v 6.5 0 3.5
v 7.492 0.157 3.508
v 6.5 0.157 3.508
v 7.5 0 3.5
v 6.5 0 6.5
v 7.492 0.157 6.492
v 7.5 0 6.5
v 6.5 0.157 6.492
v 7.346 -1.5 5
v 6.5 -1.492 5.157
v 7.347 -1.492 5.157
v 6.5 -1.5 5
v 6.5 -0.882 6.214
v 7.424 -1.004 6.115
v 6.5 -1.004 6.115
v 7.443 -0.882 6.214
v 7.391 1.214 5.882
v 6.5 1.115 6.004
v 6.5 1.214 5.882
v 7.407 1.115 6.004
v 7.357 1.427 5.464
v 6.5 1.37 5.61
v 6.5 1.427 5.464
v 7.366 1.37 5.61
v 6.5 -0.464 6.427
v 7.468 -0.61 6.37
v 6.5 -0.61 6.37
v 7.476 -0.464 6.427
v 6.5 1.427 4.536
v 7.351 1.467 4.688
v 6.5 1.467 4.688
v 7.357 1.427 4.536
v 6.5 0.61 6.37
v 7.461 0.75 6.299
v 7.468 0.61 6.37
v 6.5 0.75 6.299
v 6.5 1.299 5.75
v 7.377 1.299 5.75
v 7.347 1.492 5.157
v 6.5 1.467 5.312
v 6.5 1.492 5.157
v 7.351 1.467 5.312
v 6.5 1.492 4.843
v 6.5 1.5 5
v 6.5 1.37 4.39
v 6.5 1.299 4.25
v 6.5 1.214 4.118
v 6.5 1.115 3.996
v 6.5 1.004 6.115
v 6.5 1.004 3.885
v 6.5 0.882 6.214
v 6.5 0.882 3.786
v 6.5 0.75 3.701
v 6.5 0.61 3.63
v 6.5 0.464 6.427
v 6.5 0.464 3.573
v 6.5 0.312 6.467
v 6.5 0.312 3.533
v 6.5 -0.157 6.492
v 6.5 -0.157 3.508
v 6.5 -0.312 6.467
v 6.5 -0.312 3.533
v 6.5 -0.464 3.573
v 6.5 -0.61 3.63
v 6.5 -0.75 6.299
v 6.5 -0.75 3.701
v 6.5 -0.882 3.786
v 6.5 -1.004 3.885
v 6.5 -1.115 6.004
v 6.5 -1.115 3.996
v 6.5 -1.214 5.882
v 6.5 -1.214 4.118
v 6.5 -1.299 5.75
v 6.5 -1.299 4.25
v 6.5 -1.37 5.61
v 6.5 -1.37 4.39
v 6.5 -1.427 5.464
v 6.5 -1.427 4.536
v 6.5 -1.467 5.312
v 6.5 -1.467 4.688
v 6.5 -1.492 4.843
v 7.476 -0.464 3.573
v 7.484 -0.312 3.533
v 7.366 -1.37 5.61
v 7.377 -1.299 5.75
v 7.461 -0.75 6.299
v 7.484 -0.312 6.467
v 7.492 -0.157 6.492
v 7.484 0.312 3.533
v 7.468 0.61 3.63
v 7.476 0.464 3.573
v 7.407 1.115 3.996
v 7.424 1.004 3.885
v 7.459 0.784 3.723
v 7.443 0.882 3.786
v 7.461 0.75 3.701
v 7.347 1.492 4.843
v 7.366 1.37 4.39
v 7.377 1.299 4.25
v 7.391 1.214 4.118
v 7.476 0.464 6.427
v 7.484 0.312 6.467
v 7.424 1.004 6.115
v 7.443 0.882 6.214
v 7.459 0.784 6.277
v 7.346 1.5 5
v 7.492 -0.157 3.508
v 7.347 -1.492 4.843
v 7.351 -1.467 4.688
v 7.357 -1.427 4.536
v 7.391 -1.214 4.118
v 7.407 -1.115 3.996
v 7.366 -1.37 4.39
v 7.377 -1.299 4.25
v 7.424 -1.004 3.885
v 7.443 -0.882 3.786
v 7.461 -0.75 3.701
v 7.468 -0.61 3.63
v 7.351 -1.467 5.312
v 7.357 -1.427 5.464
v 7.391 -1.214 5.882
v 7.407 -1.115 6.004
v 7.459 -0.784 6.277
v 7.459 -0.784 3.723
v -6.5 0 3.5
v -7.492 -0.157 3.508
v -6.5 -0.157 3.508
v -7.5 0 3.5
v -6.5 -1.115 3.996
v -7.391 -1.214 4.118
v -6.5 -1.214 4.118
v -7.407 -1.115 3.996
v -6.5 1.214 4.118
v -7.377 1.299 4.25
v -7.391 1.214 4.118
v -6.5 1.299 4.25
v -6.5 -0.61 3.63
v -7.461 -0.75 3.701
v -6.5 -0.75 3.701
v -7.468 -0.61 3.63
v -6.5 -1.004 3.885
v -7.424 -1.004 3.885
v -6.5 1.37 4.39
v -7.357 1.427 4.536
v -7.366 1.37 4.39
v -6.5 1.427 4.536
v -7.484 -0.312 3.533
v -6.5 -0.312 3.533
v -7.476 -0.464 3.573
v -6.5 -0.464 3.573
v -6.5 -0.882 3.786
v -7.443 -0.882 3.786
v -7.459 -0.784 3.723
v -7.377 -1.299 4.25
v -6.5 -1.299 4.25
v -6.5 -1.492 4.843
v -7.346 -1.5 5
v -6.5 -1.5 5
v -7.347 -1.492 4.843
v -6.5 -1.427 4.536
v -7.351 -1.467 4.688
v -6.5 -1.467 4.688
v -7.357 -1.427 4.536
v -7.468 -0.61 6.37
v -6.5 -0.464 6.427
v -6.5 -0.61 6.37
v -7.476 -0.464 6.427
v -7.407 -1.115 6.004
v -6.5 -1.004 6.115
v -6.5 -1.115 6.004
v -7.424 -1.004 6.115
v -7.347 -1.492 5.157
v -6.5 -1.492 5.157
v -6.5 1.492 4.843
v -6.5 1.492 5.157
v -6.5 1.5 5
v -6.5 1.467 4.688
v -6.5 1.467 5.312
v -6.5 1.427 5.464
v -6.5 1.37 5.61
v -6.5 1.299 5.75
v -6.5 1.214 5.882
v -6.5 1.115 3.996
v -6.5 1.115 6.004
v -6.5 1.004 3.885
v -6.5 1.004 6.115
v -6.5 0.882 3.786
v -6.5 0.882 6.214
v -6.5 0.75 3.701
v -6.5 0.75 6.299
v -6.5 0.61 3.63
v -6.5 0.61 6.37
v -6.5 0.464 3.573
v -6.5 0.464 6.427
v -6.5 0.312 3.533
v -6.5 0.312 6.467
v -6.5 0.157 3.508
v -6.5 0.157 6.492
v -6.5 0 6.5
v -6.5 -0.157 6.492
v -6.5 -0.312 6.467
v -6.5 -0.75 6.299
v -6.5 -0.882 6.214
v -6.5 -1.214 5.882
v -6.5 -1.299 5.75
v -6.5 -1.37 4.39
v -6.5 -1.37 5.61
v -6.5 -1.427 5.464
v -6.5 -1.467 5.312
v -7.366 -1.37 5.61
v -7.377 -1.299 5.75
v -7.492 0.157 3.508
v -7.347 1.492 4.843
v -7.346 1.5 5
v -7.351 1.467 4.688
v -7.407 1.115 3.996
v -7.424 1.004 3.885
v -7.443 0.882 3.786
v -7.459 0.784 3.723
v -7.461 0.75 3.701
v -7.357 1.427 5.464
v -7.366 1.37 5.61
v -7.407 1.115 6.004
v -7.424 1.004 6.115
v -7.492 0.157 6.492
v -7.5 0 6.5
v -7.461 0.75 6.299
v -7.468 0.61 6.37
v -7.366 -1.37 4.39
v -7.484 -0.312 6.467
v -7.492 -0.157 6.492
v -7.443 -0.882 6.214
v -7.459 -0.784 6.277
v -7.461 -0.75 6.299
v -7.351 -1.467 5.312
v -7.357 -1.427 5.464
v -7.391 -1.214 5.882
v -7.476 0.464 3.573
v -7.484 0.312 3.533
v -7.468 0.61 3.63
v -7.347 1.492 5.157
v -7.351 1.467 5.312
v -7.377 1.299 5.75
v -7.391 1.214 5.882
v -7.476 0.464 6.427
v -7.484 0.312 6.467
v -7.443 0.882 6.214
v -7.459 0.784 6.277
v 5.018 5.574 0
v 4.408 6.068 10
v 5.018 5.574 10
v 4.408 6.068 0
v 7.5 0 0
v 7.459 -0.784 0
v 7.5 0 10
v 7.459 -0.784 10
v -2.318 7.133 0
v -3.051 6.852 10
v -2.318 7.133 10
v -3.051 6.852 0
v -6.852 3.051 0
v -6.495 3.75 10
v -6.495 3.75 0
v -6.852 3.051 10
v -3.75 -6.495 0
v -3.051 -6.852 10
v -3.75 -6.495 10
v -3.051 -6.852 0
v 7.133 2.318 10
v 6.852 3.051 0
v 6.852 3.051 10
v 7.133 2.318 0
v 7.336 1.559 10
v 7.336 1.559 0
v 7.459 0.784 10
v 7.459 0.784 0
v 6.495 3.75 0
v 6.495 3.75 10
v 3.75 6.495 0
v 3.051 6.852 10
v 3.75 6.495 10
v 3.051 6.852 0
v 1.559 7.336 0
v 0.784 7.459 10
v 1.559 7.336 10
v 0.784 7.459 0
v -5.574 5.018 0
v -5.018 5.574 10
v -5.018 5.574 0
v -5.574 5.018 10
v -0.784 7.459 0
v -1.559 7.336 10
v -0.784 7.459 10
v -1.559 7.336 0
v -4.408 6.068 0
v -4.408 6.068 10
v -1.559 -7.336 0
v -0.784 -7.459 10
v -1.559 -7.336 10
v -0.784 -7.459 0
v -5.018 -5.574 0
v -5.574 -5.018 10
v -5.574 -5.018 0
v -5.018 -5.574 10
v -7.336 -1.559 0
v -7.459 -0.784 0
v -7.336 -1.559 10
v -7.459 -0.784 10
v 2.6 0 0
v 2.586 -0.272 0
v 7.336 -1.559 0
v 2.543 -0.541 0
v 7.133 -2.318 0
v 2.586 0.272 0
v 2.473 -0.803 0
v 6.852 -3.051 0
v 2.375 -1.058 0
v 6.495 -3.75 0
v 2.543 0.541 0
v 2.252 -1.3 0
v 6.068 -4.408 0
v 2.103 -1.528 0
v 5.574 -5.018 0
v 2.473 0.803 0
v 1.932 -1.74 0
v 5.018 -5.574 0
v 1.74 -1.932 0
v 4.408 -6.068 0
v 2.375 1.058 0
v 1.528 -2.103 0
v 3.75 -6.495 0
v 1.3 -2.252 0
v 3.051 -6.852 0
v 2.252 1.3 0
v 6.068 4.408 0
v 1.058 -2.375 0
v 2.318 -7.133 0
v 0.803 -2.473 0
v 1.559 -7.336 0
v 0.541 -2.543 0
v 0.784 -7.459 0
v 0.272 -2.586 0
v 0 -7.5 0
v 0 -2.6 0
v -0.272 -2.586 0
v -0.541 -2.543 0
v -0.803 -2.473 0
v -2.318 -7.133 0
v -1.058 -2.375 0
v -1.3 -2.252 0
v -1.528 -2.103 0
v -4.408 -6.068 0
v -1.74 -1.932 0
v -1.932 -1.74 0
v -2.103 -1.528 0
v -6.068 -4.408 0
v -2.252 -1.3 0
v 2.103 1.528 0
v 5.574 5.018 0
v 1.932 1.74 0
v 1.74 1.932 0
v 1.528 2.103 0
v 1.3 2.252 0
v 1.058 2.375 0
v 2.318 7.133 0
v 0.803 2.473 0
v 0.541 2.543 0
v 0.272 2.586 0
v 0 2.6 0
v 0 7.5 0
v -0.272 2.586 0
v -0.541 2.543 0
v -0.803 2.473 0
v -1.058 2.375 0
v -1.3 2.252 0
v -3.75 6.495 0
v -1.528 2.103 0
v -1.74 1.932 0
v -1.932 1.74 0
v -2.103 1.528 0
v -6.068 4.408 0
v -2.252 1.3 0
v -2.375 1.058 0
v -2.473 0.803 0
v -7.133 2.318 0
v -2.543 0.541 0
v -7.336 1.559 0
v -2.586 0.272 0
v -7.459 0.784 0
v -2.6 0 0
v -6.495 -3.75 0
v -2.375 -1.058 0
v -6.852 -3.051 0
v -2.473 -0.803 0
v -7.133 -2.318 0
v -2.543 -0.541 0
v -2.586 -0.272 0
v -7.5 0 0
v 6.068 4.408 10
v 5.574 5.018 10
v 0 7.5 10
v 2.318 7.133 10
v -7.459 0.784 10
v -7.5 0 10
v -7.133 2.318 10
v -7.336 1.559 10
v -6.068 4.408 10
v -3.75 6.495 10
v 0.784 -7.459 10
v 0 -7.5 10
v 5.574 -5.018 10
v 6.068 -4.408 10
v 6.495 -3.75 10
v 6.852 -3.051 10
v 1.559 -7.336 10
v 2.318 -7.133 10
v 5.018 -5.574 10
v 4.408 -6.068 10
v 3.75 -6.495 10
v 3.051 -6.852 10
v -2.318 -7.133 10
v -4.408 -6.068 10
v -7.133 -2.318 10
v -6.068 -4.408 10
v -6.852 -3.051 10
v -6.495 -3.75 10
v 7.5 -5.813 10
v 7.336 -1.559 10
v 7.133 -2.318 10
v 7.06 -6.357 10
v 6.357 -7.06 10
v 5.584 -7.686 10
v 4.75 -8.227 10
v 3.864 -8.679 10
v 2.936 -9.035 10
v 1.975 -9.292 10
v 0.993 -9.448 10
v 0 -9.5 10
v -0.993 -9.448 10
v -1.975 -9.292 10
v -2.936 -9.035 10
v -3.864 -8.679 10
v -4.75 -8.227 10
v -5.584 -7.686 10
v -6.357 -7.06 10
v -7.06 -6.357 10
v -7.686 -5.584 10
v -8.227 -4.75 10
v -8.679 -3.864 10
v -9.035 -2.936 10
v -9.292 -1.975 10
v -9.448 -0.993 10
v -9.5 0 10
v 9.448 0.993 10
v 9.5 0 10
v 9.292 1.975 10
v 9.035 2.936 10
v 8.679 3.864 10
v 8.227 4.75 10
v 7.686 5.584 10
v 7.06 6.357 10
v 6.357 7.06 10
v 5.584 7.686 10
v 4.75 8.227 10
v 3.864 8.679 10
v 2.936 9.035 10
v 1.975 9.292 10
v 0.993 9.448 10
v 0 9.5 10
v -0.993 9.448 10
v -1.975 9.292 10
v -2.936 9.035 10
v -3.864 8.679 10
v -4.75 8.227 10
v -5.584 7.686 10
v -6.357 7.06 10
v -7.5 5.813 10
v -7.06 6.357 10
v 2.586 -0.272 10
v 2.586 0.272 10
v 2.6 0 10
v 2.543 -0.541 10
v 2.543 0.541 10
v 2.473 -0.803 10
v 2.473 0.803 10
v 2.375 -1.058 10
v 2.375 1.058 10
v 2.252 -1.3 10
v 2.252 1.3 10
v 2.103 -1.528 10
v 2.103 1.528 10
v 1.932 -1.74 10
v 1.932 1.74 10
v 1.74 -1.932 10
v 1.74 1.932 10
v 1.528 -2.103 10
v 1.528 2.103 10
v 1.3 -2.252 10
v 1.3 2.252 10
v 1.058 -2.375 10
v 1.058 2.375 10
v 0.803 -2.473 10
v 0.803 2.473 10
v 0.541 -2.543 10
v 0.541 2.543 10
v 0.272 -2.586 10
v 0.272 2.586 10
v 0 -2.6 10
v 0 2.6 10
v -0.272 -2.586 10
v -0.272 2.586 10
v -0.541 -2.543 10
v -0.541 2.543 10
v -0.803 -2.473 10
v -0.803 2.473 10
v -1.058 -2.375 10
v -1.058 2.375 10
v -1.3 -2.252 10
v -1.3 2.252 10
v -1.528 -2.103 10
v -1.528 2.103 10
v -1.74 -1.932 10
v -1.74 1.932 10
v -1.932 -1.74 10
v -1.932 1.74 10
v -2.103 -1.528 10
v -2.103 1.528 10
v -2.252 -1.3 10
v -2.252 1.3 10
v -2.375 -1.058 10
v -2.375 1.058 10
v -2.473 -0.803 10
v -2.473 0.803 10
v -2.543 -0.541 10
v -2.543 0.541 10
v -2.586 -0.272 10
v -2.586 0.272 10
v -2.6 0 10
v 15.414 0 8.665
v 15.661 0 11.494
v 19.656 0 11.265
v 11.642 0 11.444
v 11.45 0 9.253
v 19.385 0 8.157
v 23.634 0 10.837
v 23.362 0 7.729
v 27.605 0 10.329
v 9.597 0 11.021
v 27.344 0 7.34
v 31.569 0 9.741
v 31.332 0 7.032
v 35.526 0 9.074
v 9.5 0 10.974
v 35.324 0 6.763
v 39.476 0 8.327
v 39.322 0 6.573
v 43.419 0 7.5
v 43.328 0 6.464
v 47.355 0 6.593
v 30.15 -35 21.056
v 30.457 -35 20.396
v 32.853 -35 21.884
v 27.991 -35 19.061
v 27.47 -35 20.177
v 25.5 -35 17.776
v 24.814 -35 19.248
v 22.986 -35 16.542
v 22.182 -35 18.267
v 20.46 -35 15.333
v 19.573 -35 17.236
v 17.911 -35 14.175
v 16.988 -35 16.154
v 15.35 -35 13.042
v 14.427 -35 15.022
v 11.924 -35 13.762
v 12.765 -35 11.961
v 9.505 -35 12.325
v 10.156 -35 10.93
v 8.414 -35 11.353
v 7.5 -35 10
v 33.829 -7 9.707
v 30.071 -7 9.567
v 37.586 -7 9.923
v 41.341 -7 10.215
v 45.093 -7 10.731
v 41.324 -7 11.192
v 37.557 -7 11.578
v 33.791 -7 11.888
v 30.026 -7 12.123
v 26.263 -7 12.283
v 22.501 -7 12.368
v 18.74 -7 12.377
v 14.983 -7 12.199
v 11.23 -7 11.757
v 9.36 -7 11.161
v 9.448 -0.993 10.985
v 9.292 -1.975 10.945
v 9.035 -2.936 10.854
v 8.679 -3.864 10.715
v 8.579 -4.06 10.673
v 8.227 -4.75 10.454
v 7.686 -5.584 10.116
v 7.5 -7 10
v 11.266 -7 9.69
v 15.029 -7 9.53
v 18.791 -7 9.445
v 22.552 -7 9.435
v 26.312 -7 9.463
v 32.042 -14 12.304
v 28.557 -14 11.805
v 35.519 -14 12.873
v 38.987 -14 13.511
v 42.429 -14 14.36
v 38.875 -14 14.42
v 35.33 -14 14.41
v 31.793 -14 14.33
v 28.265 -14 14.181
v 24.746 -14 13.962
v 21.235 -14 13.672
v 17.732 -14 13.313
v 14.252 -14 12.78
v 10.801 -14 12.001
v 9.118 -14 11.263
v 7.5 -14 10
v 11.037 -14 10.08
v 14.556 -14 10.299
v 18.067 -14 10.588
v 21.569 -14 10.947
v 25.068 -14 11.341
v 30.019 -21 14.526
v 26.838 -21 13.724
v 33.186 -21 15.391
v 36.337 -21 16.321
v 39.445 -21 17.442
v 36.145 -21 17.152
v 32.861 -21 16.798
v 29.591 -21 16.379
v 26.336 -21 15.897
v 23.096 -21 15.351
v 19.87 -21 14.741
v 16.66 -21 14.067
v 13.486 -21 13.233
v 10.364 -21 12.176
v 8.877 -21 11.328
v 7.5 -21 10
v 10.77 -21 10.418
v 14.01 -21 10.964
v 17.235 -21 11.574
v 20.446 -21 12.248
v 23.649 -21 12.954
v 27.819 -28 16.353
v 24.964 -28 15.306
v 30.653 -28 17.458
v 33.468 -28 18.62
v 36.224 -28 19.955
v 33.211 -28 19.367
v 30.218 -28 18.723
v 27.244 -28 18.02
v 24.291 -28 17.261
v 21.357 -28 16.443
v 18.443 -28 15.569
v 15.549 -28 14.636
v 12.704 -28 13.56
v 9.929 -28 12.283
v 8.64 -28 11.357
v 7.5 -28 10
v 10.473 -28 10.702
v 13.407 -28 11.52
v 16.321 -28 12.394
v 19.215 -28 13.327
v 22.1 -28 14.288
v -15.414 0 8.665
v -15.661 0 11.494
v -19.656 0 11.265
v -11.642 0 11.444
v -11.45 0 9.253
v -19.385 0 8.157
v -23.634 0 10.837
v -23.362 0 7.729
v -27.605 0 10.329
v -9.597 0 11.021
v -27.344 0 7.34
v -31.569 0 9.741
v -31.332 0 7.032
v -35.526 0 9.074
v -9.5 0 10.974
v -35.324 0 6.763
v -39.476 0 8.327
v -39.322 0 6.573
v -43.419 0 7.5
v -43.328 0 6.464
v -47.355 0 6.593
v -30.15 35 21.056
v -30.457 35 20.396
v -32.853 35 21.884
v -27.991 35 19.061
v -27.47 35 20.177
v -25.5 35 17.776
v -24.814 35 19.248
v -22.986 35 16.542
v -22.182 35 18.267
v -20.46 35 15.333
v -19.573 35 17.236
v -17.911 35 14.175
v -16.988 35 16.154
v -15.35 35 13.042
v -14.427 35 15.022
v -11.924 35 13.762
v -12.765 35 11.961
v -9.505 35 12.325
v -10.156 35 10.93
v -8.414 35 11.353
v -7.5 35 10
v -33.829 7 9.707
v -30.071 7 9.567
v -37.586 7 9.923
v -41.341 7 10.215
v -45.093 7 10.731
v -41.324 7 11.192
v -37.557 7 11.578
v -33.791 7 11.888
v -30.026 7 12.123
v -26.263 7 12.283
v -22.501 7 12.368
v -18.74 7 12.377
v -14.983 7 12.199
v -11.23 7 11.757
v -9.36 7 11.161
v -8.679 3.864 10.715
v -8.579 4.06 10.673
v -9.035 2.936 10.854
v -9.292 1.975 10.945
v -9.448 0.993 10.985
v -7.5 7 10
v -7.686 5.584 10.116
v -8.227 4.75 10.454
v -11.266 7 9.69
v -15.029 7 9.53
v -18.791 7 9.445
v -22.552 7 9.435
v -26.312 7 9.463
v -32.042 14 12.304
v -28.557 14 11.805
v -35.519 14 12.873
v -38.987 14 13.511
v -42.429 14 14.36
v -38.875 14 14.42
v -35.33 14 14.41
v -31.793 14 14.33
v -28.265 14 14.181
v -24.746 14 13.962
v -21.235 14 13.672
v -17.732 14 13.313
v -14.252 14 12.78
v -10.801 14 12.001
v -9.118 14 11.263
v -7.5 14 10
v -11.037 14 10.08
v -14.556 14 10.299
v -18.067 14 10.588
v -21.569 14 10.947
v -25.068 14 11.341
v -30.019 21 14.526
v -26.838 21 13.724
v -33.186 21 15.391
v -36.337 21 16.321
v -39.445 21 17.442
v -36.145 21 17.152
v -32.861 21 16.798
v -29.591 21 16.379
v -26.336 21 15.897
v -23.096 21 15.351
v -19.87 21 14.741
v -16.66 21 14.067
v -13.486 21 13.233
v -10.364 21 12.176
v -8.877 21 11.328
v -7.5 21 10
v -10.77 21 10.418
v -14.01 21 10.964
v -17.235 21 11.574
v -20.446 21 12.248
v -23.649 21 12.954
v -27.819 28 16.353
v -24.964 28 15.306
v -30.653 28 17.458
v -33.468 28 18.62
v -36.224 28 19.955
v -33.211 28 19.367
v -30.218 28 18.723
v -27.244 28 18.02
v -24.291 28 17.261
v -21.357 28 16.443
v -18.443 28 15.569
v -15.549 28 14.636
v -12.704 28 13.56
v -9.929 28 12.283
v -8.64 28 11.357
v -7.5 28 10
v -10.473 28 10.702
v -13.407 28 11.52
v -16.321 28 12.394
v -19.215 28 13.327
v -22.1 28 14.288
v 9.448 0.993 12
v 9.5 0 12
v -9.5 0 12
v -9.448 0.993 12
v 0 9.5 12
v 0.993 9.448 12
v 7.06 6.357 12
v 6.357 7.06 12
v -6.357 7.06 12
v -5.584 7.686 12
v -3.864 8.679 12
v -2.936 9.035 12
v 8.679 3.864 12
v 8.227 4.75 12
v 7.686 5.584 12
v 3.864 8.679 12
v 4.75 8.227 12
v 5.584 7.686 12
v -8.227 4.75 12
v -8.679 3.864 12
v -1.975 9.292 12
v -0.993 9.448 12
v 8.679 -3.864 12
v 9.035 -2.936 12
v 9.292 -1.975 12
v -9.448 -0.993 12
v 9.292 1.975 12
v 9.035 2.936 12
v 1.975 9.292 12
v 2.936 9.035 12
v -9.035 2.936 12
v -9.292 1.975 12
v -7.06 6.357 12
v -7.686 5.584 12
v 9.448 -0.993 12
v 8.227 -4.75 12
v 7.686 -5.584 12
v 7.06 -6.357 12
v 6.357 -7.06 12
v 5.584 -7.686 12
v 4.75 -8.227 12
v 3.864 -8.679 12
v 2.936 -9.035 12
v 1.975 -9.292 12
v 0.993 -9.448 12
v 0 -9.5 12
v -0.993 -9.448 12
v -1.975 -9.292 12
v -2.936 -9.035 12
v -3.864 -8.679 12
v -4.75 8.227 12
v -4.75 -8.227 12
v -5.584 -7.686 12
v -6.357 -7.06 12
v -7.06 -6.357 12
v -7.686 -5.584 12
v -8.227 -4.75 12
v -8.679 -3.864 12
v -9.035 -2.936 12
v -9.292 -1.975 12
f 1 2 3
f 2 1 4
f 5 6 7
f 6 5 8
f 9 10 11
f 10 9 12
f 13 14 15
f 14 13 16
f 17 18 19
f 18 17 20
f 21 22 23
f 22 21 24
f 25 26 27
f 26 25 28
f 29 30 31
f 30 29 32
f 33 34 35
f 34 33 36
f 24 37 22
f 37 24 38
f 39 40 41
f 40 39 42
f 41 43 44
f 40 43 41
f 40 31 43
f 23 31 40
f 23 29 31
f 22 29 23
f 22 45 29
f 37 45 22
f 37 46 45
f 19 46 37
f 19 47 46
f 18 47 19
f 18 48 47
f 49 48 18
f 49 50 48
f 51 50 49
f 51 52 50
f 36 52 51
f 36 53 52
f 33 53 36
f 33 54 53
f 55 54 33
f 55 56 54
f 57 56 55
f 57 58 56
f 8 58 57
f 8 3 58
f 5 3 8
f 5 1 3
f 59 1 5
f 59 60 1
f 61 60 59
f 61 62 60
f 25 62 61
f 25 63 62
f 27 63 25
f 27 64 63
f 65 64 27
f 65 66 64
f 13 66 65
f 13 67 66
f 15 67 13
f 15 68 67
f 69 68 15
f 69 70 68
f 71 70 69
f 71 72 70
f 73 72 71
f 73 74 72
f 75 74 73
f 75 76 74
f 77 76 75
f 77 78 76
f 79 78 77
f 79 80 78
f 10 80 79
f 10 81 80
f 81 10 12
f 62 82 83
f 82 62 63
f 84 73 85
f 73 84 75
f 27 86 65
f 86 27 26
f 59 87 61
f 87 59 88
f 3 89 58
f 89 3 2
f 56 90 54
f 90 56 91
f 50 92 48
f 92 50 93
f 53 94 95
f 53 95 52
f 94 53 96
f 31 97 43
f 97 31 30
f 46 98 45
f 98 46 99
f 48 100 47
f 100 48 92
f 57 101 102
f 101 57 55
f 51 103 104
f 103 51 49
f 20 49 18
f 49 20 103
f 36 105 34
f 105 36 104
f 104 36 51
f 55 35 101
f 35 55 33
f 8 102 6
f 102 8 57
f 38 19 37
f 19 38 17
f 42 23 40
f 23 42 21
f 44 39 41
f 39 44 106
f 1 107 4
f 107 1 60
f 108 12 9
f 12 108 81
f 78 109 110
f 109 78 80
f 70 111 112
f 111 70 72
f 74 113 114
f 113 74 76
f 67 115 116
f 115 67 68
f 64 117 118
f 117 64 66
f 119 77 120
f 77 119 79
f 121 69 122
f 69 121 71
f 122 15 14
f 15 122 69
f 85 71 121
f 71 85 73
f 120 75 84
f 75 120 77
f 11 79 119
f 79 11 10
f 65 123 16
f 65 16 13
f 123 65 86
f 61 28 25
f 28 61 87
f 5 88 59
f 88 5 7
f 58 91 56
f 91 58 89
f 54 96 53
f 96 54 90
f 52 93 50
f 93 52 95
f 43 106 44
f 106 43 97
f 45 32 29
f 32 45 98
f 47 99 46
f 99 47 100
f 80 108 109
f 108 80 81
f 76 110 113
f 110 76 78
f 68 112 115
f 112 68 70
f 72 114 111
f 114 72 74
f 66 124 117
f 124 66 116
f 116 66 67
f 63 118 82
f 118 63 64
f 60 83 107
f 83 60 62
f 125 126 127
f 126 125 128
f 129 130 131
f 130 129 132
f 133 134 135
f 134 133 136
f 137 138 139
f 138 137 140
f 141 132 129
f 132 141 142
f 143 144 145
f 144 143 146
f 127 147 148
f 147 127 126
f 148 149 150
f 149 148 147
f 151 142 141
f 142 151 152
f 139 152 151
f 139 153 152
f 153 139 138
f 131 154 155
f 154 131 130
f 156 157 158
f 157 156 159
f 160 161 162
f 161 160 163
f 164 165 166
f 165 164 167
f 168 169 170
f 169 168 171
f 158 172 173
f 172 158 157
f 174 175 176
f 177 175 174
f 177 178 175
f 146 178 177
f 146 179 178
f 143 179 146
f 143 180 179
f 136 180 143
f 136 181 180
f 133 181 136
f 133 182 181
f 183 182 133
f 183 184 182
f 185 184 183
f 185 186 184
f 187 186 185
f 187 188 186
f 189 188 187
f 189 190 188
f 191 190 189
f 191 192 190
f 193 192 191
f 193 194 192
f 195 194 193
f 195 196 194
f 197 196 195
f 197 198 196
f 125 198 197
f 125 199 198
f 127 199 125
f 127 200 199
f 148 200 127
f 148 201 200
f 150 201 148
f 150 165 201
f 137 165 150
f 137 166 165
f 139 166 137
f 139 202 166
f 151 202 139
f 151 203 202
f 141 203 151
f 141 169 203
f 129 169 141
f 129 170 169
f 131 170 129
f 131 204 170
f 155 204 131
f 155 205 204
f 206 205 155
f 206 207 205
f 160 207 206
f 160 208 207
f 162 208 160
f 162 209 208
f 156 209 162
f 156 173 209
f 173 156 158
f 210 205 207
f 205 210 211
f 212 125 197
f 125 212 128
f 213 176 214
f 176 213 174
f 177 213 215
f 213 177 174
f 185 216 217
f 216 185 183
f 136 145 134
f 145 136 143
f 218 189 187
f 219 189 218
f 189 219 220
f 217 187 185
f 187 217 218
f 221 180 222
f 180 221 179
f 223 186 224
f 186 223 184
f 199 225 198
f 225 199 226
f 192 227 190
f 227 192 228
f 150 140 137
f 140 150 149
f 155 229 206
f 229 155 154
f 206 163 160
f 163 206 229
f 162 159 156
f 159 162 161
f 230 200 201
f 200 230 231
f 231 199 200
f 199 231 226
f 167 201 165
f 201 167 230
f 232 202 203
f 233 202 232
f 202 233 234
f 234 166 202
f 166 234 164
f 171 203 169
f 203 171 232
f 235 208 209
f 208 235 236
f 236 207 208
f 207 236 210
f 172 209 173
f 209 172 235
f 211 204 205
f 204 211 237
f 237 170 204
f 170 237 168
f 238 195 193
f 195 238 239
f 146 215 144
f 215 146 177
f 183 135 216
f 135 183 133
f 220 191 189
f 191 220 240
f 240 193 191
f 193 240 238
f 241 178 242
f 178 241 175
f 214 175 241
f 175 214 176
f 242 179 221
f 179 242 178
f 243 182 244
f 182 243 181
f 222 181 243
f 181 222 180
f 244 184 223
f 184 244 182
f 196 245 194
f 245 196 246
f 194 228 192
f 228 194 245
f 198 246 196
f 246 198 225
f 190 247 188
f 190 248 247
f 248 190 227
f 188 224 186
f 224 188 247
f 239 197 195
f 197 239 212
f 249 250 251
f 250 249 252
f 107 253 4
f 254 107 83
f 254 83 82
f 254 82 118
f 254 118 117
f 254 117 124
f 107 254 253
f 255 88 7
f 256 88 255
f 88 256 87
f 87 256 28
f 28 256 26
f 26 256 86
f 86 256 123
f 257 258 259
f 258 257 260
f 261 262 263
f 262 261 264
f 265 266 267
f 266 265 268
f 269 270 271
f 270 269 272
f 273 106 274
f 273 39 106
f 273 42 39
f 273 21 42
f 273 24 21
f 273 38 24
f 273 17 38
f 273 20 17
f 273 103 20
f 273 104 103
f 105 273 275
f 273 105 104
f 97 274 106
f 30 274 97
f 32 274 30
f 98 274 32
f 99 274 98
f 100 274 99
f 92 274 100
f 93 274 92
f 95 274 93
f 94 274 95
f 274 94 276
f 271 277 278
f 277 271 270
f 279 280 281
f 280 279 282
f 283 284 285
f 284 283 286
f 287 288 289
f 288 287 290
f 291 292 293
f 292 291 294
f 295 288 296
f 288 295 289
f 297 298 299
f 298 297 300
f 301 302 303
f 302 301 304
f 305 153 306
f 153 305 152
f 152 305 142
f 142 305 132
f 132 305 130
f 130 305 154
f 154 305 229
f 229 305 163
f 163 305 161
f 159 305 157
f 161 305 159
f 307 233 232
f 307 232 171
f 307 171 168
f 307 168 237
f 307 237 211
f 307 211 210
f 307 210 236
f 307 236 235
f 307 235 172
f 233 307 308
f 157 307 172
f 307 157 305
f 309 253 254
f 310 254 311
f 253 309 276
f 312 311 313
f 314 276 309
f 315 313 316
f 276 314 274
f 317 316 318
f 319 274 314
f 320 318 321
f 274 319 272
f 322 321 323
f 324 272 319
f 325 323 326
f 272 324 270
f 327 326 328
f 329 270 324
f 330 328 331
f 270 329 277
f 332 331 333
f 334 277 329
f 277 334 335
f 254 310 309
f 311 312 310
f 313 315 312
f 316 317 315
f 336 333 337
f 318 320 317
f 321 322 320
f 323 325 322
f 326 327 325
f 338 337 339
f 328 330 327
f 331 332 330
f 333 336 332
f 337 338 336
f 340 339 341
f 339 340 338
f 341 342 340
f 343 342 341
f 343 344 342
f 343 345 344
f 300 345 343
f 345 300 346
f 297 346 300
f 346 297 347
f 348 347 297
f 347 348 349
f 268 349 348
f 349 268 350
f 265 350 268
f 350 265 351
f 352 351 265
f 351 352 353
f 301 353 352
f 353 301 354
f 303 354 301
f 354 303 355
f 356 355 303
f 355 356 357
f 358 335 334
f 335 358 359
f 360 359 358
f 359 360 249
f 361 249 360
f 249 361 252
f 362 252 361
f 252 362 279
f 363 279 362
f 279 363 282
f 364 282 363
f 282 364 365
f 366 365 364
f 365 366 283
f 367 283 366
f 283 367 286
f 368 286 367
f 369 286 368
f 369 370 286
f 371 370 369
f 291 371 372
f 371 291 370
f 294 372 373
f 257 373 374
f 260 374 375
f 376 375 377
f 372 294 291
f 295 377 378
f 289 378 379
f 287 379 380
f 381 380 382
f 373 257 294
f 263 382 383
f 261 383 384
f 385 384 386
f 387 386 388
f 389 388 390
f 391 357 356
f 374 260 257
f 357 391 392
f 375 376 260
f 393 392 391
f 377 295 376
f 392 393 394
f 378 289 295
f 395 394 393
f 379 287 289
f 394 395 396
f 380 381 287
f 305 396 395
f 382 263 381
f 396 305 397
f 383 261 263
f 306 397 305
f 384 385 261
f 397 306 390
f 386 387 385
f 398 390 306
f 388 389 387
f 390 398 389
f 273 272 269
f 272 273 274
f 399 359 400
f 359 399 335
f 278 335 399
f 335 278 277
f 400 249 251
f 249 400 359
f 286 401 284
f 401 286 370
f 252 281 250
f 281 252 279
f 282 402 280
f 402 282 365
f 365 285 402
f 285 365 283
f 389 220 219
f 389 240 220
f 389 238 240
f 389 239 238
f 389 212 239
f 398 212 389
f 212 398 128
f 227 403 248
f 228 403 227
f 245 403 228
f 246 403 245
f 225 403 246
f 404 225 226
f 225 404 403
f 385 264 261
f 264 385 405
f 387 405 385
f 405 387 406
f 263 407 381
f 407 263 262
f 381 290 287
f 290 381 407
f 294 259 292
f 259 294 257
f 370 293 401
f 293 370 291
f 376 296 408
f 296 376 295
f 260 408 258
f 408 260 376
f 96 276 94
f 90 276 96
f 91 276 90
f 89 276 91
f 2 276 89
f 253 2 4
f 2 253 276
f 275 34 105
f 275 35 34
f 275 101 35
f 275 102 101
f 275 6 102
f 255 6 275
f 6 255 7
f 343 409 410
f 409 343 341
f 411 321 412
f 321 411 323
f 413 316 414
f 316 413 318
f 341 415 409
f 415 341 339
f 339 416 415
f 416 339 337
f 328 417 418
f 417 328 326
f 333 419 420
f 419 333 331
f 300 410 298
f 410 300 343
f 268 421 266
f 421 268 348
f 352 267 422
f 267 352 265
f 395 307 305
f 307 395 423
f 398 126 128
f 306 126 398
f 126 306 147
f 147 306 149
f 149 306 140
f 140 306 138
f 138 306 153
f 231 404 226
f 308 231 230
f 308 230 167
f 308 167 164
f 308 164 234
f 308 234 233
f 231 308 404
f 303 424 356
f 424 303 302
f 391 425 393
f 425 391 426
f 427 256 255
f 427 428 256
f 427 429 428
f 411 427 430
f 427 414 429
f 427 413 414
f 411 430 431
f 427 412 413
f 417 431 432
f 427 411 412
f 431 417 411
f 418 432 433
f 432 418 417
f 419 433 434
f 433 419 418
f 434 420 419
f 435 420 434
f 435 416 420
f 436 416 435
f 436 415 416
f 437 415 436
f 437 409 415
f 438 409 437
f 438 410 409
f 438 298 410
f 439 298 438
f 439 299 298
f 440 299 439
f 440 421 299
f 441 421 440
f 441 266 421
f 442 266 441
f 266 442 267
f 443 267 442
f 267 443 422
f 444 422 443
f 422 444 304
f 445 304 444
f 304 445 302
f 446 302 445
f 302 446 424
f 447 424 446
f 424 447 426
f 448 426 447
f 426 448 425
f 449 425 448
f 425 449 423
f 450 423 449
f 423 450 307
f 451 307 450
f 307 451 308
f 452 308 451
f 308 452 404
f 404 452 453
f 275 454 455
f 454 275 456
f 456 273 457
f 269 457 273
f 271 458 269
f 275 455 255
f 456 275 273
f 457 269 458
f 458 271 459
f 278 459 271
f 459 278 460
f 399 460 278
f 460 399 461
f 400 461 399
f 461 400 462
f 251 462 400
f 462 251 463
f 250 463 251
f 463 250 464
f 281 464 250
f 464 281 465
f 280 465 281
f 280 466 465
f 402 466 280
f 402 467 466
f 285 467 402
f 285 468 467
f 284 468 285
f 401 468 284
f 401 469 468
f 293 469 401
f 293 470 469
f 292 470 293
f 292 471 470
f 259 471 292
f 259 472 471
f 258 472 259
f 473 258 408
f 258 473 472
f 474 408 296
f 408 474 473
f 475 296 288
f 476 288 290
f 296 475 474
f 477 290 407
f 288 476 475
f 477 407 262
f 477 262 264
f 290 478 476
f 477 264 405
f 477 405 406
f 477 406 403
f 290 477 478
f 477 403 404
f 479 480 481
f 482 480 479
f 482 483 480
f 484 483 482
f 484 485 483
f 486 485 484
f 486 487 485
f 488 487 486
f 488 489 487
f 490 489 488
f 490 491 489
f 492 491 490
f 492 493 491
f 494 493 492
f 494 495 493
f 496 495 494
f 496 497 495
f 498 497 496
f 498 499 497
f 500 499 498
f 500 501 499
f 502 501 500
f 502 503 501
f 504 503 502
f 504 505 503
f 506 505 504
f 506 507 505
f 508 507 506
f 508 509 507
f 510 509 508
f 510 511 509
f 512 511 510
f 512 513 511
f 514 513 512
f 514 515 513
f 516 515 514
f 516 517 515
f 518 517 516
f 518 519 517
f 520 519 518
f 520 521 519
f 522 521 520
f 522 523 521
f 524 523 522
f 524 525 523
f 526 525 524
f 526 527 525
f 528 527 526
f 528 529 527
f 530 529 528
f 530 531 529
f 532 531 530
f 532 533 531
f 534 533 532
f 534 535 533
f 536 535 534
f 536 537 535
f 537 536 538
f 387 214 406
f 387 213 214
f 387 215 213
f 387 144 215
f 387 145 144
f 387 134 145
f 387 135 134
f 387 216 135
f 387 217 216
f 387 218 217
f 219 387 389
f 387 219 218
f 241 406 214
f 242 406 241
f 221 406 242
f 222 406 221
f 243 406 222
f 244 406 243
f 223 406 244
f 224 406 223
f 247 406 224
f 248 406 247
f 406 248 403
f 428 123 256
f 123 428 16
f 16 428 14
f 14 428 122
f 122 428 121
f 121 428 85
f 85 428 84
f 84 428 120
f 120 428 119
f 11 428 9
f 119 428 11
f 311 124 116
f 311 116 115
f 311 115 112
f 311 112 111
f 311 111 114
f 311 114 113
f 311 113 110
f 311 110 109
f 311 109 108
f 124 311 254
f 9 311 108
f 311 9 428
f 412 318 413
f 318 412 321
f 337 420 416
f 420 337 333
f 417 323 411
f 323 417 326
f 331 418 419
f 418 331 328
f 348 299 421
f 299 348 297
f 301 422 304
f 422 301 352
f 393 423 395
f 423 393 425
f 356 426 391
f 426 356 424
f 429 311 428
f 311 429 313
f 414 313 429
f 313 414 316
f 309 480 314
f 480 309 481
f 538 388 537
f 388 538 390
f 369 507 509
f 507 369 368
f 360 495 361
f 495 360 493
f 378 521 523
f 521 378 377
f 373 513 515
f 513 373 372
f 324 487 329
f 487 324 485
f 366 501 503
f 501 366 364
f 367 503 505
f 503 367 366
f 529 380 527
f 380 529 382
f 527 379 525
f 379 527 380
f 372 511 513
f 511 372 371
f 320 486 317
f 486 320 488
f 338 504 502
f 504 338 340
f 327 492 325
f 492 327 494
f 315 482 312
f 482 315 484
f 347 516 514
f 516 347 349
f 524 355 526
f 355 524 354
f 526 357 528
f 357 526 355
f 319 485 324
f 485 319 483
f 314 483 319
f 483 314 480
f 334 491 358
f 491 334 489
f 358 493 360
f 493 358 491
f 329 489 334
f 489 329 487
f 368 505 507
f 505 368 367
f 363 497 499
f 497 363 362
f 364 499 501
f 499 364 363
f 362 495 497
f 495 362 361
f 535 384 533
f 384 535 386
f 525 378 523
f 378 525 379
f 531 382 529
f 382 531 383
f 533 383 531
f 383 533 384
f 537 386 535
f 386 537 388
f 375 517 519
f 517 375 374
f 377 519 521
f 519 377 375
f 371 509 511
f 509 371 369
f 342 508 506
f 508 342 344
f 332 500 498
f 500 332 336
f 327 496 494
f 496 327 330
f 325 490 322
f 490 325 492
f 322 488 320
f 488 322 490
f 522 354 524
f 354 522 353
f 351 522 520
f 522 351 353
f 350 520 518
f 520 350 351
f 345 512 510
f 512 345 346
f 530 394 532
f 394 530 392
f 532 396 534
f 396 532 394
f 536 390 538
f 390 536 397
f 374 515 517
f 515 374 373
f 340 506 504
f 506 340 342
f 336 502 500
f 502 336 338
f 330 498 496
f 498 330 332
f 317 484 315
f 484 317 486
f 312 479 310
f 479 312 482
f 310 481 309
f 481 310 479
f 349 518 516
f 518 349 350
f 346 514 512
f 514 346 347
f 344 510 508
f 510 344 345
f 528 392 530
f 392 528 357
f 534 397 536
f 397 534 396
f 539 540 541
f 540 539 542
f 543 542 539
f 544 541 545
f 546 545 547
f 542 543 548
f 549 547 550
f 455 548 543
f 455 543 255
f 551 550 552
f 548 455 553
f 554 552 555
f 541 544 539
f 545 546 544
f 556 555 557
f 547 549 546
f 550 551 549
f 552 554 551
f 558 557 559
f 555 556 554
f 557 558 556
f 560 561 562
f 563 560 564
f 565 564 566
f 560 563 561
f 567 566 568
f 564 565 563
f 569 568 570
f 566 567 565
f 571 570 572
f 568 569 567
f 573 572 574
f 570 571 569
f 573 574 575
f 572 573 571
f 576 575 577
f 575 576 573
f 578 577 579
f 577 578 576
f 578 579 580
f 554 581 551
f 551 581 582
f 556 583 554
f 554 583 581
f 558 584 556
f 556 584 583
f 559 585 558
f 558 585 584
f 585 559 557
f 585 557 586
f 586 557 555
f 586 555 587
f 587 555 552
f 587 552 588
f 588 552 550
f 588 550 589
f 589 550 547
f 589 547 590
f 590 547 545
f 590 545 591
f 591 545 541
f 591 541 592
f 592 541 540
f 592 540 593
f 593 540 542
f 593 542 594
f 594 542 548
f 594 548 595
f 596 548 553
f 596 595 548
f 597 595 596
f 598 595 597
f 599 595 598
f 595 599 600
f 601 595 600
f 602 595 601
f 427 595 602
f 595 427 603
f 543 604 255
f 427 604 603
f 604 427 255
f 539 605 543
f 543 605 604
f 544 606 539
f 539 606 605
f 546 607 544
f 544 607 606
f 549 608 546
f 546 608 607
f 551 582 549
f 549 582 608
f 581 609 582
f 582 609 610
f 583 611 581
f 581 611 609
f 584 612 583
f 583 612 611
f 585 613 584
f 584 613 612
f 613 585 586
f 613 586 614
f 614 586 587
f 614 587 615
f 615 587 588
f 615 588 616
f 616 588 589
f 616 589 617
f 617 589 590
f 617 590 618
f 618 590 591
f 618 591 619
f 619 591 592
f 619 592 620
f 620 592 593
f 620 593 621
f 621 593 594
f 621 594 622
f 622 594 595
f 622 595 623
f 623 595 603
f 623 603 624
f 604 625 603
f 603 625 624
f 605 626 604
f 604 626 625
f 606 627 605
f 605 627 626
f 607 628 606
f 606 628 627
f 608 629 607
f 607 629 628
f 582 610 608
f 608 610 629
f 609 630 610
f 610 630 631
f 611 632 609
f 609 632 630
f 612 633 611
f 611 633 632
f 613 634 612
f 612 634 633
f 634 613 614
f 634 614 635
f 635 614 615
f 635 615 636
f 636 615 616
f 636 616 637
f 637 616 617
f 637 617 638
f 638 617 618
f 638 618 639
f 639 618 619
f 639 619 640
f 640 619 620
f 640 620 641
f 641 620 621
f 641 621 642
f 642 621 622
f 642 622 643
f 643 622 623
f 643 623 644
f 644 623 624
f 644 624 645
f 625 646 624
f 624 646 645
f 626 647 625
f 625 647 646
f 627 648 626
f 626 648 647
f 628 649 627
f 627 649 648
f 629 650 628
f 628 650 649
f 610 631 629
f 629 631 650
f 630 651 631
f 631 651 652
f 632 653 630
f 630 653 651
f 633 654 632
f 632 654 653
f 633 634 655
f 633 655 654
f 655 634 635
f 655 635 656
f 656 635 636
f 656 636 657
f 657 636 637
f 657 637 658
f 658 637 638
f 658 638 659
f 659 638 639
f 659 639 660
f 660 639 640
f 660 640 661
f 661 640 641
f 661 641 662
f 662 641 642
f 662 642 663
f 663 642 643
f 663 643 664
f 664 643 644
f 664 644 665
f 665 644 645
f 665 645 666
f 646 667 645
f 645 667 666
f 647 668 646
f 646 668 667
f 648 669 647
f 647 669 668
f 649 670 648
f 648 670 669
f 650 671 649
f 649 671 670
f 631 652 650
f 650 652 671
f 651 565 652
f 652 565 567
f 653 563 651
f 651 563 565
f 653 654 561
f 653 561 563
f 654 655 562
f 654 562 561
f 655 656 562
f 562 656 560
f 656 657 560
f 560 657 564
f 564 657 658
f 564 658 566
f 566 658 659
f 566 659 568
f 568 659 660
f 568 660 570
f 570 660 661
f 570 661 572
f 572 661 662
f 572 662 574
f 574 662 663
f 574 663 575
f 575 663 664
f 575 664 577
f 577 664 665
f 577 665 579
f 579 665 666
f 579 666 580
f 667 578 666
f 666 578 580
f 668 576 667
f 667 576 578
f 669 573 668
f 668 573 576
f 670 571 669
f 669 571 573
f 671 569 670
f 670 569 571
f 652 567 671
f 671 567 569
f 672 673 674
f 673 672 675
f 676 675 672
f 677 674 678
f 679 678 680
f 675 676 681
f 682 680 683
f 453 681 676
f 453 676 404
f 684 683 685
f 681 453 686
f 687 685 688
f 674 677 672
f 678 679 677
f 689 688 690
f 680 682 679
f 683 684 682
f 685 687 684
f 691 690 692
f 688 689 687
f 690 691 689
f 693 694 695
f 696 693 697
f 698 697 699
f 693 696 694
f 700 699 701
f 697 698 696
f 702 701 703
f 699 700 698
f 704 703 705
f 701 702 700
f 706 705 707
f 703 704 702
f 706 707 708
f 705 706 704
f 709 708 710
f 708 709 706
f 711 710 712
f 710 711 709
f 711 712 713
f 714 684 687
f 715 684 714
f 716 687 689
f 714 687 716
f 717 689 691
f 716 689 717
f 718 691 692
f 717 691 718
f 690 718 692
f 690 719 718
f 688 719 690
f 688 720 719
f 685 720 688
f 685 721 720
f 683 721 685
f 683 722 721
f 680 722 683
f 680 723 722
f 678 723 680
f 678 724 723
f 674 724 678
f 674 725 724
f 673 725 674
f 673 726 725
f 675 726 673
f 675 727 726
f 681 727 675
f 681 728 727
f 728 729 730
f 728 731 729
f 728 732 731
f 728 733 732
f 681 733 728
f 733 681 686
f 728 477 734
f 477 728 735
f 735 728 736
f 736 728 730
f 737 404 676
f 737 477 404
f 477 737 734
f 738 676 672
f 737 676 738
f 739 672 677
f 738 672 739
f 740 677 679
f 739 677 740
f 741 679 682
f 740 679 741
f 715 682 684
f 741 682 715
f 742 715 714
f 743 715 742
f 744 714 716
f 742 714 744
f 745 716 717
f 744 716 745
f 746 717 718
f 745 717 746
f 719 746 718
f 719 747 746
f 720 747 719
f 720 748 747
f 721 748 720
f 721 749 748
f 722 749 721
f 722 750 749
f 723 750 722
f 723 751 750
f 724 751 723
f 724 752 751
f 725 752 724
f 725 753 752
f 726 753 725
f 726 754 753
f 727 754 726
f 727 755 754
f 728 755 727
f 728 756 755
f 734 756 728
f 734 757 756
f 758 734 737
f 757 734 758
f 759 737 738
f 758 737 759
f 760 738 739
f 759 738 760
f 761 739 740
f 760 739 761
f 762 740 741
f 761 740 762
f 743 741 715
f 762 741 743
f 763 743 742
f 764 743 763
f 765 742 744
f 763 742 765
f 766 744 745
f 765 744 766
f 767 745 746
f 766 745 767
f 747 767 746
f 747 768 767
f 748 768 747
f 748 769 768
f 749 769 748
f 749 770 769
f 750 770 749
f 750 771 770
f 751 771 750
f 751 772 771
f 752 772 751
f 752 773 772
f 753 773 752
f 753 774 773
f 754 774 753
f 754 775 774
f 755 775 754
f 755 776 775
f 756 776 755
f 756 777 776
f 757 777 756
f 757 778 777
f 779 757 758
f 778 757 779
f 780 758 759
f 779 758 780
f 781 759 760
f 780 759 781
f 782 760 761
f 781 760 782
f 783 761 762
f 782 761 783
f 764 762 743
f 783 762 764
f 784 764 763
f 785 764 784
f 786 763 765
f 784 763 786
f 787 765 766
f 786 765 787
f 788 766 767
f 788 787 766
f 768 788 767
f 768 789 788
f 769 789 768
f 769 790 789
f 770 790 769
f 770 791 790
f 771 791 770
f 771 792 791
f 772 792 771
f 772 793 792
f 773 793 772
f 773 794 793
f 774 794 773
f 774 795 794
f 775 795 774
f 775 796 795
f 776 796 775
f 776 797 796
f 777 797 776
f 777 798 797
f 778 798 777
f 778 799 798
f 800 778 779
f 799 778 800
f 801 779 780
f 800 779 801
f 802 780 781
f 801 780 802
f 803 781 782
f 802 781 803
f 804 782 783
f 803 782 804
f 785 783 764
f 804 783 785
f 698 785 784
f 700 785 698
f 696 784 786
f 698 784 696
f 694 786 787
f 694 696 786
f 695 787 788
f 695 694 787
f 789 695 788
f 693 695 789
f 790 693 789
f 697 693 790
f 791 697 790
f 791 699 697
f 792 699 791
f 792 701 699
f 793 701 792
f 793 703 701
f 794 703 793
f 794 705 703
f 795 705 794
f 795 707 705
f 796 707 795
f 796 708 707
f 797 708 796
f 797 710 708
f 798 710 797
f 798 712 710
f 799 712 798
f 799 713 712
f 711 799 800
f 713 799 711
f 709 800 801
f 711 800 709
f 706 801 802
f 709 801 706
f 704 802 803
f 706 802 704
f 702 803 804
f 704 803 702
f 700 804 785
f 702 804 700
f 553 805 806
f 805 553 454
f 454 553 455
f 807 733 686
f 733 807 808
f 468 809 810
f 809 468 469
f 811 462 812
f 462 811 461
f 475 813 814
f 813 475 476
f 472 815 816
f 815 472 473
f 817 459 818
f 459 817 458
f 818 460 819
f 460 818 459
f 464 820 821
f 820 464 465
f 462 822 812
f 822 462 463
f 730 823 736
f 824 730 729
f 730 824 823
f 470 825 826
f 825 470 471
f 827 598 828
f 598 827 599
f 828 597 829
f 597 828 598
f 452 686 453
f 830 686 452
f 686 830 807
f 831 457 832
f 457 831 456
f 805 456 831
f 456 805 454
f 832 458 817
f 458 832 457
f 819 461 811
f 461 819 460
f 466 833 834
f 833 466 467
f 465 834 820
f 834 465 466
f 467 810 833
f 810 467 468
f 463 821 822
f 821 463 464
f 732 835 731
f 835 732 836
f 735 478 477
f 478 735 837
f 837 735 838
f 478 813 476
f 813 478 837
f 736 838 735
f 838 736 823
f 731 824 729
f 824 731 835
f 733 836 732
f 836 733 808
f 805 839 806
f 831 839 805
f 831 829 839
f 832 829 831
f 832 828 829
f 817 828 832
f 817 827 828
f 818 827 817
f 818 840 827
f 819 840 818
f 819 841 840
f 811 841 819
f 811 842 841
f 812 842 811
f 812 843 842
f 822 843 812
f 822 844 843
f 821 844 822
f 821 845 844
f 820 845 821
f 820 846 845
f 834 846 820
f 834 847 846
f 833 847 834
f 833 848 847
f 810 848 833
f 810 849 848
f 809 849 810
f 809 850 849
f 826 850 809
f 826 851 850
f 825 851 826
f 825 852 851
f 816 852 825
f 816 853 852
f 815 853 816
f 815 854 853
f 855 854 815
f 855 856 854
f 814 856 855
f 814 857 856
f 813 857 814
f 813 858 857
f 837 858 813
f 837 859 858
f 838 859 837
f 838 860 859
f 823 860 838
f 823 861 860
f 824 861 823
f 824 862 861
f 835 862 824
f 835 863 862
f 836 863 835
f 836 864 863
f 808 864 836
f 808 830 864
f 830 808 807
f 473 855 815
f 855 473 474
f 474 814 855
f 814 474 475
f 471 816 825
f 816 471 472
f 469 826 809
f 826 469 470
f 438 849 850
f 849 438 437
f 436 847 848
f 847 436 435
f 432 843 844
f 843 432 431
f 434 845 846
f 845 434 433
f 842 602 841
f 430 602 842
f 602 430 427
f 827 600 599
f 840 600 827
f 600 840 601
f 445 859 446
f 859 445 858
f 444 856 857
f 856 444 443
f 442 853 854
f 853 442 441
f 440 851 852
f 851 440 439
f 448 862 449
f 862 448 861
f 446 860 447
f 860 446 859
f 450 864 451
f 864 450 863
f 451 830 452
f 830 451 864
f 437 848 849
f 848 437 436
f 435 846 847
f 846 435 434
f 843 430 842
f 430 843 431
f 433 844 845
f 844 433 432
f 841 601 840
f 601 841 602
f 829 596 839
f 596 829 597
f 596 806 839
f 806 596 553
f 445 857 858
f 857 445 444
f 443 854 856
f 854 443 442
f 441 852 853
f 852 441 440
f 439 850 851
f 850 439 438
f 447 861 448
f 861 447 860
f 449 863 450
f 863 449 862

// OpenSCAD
/*
 * COMPLETE MOTOR + IMPELLER ASSEMBLY
 * For CFD fluid testing and visualization
 * 
 * This model includes:
 *   - Brushless motor (2204-2206 size)
 *   - Motor shaft (5mm)
 *   - Impeller hub
 *   - 3 impeller variants (bladeless, AI-blades, hybrid)
 *   - Mounting plate
 * 
 * Usage:
 *   - Render full assembly: F6
 *   - Export for CFD: Set EXPORT_MODE = "impeller_only"
 *   - Change design: Set IMPELLER_TYPE = "bladeless" | "bladed" | "hybrid"
 */

// ============================================================================
// CONFIGURATION PARAMETERS (AI-Optimizable)
// ============================================================================

// General Settings
$fn = 60;  // Resolution for CFD export (increase to 100 for final)

// Export Mode
EXPORT_MODE = "impeller_only";  // Options: "full_assembly", "impeller_only", "motor_only"

// Impeller Type
IMPELLER_TYPE = "bladed";  // Options: "bladeless", "bladed", "hybrid"

// Motor Specifications (2204-2206 brushless)
MOTOR_DIAMETER = 28;         // mm
MOTOR_HEIGHT = 25;           // mm
MOTOR_SHAFT_DIAMETER = 5;    // mm (standard)
MOTOR_SHAFT_LENGTH = 15;     // mm (extends above motor)
MOTOR_MOUNT_PATTERN = 16;    // mm (16x16 or 19x19 common)
MOTOR_SCREW_DIAMETER = 3;    // M3 screws

// Impeller Parameters - BLADELESS
BLADELESS_OUTER_DIAMETER = 90;    // mm
BLADELESS_AIR_GAP = 0.8;          // mm (optimize: 0.6-1.2)
BLADELESS_THROAT_RATIO = 0.72;    // (optimize: 0.65-0.80)
BLADELESS_EXPANSION_ANGLE = 18;   // degrees (optimize: 12-25)
BLADELESS_RING_THICKNESS = 3;     // mm (optimize: 2-4)
BLADELESS_HEIGHT = 24;            // mm

// Impeller Parameters - BLADED
BLADED_DIAMETER = 85;
BLADED_HUB_DIAMETER = 15;         // mm (optimize: 12-20)
BLADED_BLADE_COUNT = 2;
BLADED_ROOT_CHORD = 40;
BLADED_TIP_CHORD_RATIO = 0.7;    // (optimize: 0.6-0.8)
BLADED_BLADE_THICKNESS = 2;       // mm (optimize: 1.5-3)
BLADED_BLADE_TWIST = -30;
BLADED_ATTACK_ANGLE = -5;
BLADED_BLADE_HEIGHT = 12;         // mm (optimize: 10-15)

// Hub Parameters
HUB_DIAMETER = 15;
HUB_HEIGHT = 10;
HUB_SET_SCREW_DIAMETER = 3;  // M3 set screw

// Mounting Plate
PLATE_SIZE = 50;
PLATE_THICKNESS = 3;

// ============================================================================
// MOTOR MODEL
// ============================================================================

module brushless_motor_2204() {
    color("DarkSlateGray") {
        // Motor can (bell)
        difference() {
            cylinder(h=MOTOR_HEIGHT, d=MOTOR_DIAMETER);
            
            // Hollow inside (weight reduction visualization)
            translate([0, 0, -0.5])
                cylinder(h=MOTOR_HEIGHT - 5, d=MOTOR_DIAMETER - 4);
            
            // Mounting holes
            for(i = [0:3]) {
                rotate([0, 0, i * 90])
                    translate([MOTOR_MOUNT_PATTERN/2, 0, MOTOR_HEIGHT/2])
                        rotate([90, 0, 0])
                            cylinder(h=MOTOR_DIAMETER, d=MOTOR_SCREW_DIAMETER, center=true);
            }
        }
        
        // Motor base
        translate([0, 0, -3])
            cylinder(h=3, d=MOTOR_DIAMETER - 2);
    }
    
    // Motor shaft
    color("Silver")
        translate([0, 0, MOTOR_HEIGHT])
            cylinder(h=MOTOR_SHAFT_LENGTH, d=MOTOR_SHAFT_DIAMETER);
    
    // Shaft tip (for hub attachment)
    color("Silver")
        translate([0, 0, MOTOR_HEIGHT + MOTOR_SHAFT_LENGTH])
            cylinder(h=2, d=MOTOR_SHAFT_DIAMETER - 0.5);
}

// ============================================================================
// IMPELLER HUB
// ============================================================================

module impeller_hub() {
    color("Gray")
    difference() {
        // Hub body
        cylinder(h=HUB_HEIGHT, d=HUB_DIAMETER);
        
        // Shaft hole (5mm + 0.2mm clearance)
        translate([0, 0, -0.5])
            cylinder(h=HUB_HEIGHT + 1, d=MOTOR_SHAFT_DIAMETER + 0.2);
        
        // Set screw holes (2x for balance)
        for(i = [0:1]) {
            rotate([0, 0, i * 180])
                translate([HUB_DIAMETER/2 - 1, 0, HUB_HEIGHT/2])
                    rotate([0, 90, 0])
                        cylinder(h=5, d=HUB_SET_SCREW_DIAMETER);
        }
    }
}

// ============================================================================
// BLADELESS IMPELLER (Dyson-style)
// ============================================================================

module bladeless_impeller() {
    outer_r = BLADELESS_OUTER_DIAMETER / 2;
    throat_r = outer_r * BLADELESS_THROAT_RATIO;
    gap = BLADELESS_AIR_GAP;
    
    color("SkyBlue", 0.7)
    difference() {
        // Outer ring
        rotate_extrude()
            translate([outer_r - BLADELESS_RING_THICKNESS/2, BLADELESS_HEIGHT/2, 0])
                circle(d=BLADELESS_RING_THICKNESS + BLADELESS_HEIGHT);
        
        // Inner air gap (critical for Coanda effect)
        rotate_extrude()
            translate([outer_r - gap - BLADELESS_RING_THICKNESS/2, BLADELESS_HEIGHT/2, 0])
                circle(d=BLADELESS_RING_THICKNESS + BLADELESS_HEIGHT - 2*gap);
    }
    
    // Base plate (connects to hub)
    color("SkyBlue", 0.7)
    translate([0, 0, -2])
        difference() {
            cylinder(h=2, d=outer_r * 2);
            translate([0, 0, -0.5])
                cylinder(h=3, d=HUB_DIAMETER + 1);
        }
    
    // Air inlet (bell-shaped for smooth flow)
    color("SkyBlue", 0.7)
    translate([0, 0, -2]) {
        difference() {
            cylinder(h=15, d1=throat_r * 2, d2=outer_r * 1.8);
            translate([0, 0, -0.5])
                cylinder(h=16, d1=throat_r * 2 - 3, d2=outer_r * 1.8 - 3);
        }
    }
}

// ============================================================================
// AI-OPTIMIZED BLADED IMPELLER (NACA 2412 profile)
// ============================================================================

module naca_2412_blade(chord, height, twist_angle, attack_angle) {
    // Simplified NACA 2412 airfoil profile
    // Using parametric approximation for 3D printing
    
    color("LightSteelBlue", 0.8)
    linear_extrude(height=height, twist=twist_angle, scale=BLADED_TIP_CHORD_RATIO) {
        rotate([0, 0, attack_angle])
        polygon([
            // Upper surface (cambered)
            [0, 0],
            [chord * 0.05, chord * 0.03],
            [chord * 0.1, chord * 0.045],
            [chord * 0.2, chord * 0.055],
            [chord * 0.3, chord * 0.058],
            [chord * 0.4, chord * 0.056],
            [chord * 0.5, chord * 0.052],
            [chord * 0.6, chord * 0.046],
            [chord * 0.7, chord * 0.038],
            [chord * 0.8, chord * 0.028],
            [chord * 0.9, chord * 0.016],
            [chord * 1.0, chord * 0.002],
            // Lower surface (less cambered)
            [chord * 0.9, -chord * 0.010],
            [chord * 0.8, -chord * 0.016],
            [chord * 0.7, -chord * 0.020],
            [chord * 0.6, -chord * 0.022],
            [chord * 0.5, -chord * 0.023],
            [chord * 0.4, -chord * 0.022],
            [chord * 0.3, -chord * 0.020],
            [chord * 0.2, -chord * 0.016],
            [chord * 0.1, -chord * 0.010],
            [chord * 0.05, -chord * 0.005],
        ]);
    }
}

module bladed_impeller() {
    // Blades
    for(i = [0 : BLADED_BLADE_COUNT - 1]) {
        rotate([0, 0, i * (360 / BLADED_BLADE_COUNT)])
            translate([BLADED_HUB_DIAMETER/2, 0, 0])
                rotate([90, 0, 0])
                    naca_2412_blade(
                        BLADED_ROOT_CHORD, 
                        (BLADED_DIAMETER - BLADED_HUB_DIAMETER) / 2,
                        BLADED_BLADE_TWIST,
                        BLADED_ATTACK_ANGLE
                    );
    }
    
    // Hub disk (connects blades)
    color("LightSteelBlue", 0.8)
    cylinder(h=2, d=BLADED_HUB_DIAMETER + 4);
}

// ============================================================================
// HYBRID IMPELLER (Blades inside bladeless ring)
// ============================================================================

module hybrid_impeller() {
    // Outer bladeless ring
    bladeless_impeller();
    
    // Inner bladed impeller (scaled down to fit)
    scale([0.85, 0.85, 1])
        bladed_impeller();
}

// ============================================================================
// MOUNTING PLATE
// ============================================================================

module mounting_plate() {
    color("DimGray")
    difference() {
        // Base plate
        translate([-PLATE_SIZE/2, -PLATE_SIZE/2, 0])
            cube([PLATE_SIZE, PLATE_SIZE, PLATE_THICKNESS]);
        
        // Center hole for motor shaft
        translate([0, 0, -0.5])
            cylinder(h=PLATE_THICKNESS + 1, d=MOTOR_DIAMETER + 2);
        
        // Motor mounting holes
        for(i = [0:3]) {
            rotate([0, 0, i * 90])
                translate([MOTOR_MOUNT_PATTERN/2, 0, -0.5])
                    cylinder(h=PLATE_THICKNESS + 1, d=MOTOR_SCREW_DIAMETER);
        }
    }
}

// ============================================================================
// COMPLETE ASSEMBLY
// ============================================================================

module complete_assembly() {
    // Mounting plate (bottom)
    translate([0, 0, -PLATE_THICKNESS])
        mounting_plate();
    
    // Motor
    translate([0, 0, 0])
        brushless_motor_2204();
    
    // Hub (on shaft)
    translate([0, 0, MOTOR_HEIGHT + MOTOR_SHAFT_LENGTH - 2])
        impeller_hub();
    
    // Impeller (on hub)
    translate([0, 0, MOTOR_HEIGHT + MOTOR_SHAFT_LENGTH + HUB_HEIGHT]) {
        if (IMPELLER_TYPE == "bladeless") {
            bladeless_impeller();
        } else if (IMPELLER_TYPE == "bladed") {
            bladed_impeller();
        } else if (IMPELLER_TYPE == "hybrid") {
            hybrid_impeller();
        }
    }
}

// ============================================================================
// RENDER BASED ON EXPORT MODE
// ============================================================================

if (EXPORT_MODE == "full_assembly") {
    complete_assembly();
} 
else if (EXPORT_MODE == "impeller_only") {
    // For CFD testing - impeller + hub only
    impeller_hub();
    translate([0, 0, HUB_HEIGHT]) {
        if (IMPELLER_TYPE == "bladeless") {
            bladeless_impeller();
        } else if (IMPELLER_TYPE == "bladed") {
            bladed_impeller();
        } else if (IMPELLER_TYPE == "hybrid") {
            hybrid_impeller();
        }
    }
}
else if (EXPORT_MODE == "motor_only") {
    brushless_motor_2204();
}

// ============================================================================
// ANNOTATIONS FOR VISUALIZATION
// ============================================================================

// Uncomment to show dimensions
/*
color("Red", 0.3)
translate([BLADED_DIAMETER/2 + 10, 0, 20])
    text(str("Ø", BLADED_DIAMETER, "mm"), size=5, halign="left");

color("Green", 0.3)
translate([0, BLADED_DIAMETER/2 + 10, 20])
    text(str(BLADED_BLADE_COUNT, " blades"), size=5, halign="center");
*/

// ============================================================================
// EXPORT NOTES
// ============================================================================

/*
 * TO EXPORT FOR CFD TESTING:
 * 
 * 1. Set EXPORT_MODE = "impeller_only"
 * 2. Set IMPELLER_TYPE = "bladeless" (or "bladed" or "hybrid")
 * 3. Press F6 to render
 * 4. File → Export → Export as STL
 * 5. Use filename: impeller_bladeless_fn60.stl
 * 
 * FOR OPTIMIZATION:
 * - Modify parameters at top (marked with "optimize:")
 * - Re-render and export
 * - Upload to SimScale for CFD
 * - Compare results
 * 
 * RECOMMENDED CFD SETTINGS:
 * - Solver: k-omega SST
 * - RPM: 5000, 7000, 9000
 * - Mesh: 3-5M cells
 * - Boundary: Rotating zone on impeller
 */
